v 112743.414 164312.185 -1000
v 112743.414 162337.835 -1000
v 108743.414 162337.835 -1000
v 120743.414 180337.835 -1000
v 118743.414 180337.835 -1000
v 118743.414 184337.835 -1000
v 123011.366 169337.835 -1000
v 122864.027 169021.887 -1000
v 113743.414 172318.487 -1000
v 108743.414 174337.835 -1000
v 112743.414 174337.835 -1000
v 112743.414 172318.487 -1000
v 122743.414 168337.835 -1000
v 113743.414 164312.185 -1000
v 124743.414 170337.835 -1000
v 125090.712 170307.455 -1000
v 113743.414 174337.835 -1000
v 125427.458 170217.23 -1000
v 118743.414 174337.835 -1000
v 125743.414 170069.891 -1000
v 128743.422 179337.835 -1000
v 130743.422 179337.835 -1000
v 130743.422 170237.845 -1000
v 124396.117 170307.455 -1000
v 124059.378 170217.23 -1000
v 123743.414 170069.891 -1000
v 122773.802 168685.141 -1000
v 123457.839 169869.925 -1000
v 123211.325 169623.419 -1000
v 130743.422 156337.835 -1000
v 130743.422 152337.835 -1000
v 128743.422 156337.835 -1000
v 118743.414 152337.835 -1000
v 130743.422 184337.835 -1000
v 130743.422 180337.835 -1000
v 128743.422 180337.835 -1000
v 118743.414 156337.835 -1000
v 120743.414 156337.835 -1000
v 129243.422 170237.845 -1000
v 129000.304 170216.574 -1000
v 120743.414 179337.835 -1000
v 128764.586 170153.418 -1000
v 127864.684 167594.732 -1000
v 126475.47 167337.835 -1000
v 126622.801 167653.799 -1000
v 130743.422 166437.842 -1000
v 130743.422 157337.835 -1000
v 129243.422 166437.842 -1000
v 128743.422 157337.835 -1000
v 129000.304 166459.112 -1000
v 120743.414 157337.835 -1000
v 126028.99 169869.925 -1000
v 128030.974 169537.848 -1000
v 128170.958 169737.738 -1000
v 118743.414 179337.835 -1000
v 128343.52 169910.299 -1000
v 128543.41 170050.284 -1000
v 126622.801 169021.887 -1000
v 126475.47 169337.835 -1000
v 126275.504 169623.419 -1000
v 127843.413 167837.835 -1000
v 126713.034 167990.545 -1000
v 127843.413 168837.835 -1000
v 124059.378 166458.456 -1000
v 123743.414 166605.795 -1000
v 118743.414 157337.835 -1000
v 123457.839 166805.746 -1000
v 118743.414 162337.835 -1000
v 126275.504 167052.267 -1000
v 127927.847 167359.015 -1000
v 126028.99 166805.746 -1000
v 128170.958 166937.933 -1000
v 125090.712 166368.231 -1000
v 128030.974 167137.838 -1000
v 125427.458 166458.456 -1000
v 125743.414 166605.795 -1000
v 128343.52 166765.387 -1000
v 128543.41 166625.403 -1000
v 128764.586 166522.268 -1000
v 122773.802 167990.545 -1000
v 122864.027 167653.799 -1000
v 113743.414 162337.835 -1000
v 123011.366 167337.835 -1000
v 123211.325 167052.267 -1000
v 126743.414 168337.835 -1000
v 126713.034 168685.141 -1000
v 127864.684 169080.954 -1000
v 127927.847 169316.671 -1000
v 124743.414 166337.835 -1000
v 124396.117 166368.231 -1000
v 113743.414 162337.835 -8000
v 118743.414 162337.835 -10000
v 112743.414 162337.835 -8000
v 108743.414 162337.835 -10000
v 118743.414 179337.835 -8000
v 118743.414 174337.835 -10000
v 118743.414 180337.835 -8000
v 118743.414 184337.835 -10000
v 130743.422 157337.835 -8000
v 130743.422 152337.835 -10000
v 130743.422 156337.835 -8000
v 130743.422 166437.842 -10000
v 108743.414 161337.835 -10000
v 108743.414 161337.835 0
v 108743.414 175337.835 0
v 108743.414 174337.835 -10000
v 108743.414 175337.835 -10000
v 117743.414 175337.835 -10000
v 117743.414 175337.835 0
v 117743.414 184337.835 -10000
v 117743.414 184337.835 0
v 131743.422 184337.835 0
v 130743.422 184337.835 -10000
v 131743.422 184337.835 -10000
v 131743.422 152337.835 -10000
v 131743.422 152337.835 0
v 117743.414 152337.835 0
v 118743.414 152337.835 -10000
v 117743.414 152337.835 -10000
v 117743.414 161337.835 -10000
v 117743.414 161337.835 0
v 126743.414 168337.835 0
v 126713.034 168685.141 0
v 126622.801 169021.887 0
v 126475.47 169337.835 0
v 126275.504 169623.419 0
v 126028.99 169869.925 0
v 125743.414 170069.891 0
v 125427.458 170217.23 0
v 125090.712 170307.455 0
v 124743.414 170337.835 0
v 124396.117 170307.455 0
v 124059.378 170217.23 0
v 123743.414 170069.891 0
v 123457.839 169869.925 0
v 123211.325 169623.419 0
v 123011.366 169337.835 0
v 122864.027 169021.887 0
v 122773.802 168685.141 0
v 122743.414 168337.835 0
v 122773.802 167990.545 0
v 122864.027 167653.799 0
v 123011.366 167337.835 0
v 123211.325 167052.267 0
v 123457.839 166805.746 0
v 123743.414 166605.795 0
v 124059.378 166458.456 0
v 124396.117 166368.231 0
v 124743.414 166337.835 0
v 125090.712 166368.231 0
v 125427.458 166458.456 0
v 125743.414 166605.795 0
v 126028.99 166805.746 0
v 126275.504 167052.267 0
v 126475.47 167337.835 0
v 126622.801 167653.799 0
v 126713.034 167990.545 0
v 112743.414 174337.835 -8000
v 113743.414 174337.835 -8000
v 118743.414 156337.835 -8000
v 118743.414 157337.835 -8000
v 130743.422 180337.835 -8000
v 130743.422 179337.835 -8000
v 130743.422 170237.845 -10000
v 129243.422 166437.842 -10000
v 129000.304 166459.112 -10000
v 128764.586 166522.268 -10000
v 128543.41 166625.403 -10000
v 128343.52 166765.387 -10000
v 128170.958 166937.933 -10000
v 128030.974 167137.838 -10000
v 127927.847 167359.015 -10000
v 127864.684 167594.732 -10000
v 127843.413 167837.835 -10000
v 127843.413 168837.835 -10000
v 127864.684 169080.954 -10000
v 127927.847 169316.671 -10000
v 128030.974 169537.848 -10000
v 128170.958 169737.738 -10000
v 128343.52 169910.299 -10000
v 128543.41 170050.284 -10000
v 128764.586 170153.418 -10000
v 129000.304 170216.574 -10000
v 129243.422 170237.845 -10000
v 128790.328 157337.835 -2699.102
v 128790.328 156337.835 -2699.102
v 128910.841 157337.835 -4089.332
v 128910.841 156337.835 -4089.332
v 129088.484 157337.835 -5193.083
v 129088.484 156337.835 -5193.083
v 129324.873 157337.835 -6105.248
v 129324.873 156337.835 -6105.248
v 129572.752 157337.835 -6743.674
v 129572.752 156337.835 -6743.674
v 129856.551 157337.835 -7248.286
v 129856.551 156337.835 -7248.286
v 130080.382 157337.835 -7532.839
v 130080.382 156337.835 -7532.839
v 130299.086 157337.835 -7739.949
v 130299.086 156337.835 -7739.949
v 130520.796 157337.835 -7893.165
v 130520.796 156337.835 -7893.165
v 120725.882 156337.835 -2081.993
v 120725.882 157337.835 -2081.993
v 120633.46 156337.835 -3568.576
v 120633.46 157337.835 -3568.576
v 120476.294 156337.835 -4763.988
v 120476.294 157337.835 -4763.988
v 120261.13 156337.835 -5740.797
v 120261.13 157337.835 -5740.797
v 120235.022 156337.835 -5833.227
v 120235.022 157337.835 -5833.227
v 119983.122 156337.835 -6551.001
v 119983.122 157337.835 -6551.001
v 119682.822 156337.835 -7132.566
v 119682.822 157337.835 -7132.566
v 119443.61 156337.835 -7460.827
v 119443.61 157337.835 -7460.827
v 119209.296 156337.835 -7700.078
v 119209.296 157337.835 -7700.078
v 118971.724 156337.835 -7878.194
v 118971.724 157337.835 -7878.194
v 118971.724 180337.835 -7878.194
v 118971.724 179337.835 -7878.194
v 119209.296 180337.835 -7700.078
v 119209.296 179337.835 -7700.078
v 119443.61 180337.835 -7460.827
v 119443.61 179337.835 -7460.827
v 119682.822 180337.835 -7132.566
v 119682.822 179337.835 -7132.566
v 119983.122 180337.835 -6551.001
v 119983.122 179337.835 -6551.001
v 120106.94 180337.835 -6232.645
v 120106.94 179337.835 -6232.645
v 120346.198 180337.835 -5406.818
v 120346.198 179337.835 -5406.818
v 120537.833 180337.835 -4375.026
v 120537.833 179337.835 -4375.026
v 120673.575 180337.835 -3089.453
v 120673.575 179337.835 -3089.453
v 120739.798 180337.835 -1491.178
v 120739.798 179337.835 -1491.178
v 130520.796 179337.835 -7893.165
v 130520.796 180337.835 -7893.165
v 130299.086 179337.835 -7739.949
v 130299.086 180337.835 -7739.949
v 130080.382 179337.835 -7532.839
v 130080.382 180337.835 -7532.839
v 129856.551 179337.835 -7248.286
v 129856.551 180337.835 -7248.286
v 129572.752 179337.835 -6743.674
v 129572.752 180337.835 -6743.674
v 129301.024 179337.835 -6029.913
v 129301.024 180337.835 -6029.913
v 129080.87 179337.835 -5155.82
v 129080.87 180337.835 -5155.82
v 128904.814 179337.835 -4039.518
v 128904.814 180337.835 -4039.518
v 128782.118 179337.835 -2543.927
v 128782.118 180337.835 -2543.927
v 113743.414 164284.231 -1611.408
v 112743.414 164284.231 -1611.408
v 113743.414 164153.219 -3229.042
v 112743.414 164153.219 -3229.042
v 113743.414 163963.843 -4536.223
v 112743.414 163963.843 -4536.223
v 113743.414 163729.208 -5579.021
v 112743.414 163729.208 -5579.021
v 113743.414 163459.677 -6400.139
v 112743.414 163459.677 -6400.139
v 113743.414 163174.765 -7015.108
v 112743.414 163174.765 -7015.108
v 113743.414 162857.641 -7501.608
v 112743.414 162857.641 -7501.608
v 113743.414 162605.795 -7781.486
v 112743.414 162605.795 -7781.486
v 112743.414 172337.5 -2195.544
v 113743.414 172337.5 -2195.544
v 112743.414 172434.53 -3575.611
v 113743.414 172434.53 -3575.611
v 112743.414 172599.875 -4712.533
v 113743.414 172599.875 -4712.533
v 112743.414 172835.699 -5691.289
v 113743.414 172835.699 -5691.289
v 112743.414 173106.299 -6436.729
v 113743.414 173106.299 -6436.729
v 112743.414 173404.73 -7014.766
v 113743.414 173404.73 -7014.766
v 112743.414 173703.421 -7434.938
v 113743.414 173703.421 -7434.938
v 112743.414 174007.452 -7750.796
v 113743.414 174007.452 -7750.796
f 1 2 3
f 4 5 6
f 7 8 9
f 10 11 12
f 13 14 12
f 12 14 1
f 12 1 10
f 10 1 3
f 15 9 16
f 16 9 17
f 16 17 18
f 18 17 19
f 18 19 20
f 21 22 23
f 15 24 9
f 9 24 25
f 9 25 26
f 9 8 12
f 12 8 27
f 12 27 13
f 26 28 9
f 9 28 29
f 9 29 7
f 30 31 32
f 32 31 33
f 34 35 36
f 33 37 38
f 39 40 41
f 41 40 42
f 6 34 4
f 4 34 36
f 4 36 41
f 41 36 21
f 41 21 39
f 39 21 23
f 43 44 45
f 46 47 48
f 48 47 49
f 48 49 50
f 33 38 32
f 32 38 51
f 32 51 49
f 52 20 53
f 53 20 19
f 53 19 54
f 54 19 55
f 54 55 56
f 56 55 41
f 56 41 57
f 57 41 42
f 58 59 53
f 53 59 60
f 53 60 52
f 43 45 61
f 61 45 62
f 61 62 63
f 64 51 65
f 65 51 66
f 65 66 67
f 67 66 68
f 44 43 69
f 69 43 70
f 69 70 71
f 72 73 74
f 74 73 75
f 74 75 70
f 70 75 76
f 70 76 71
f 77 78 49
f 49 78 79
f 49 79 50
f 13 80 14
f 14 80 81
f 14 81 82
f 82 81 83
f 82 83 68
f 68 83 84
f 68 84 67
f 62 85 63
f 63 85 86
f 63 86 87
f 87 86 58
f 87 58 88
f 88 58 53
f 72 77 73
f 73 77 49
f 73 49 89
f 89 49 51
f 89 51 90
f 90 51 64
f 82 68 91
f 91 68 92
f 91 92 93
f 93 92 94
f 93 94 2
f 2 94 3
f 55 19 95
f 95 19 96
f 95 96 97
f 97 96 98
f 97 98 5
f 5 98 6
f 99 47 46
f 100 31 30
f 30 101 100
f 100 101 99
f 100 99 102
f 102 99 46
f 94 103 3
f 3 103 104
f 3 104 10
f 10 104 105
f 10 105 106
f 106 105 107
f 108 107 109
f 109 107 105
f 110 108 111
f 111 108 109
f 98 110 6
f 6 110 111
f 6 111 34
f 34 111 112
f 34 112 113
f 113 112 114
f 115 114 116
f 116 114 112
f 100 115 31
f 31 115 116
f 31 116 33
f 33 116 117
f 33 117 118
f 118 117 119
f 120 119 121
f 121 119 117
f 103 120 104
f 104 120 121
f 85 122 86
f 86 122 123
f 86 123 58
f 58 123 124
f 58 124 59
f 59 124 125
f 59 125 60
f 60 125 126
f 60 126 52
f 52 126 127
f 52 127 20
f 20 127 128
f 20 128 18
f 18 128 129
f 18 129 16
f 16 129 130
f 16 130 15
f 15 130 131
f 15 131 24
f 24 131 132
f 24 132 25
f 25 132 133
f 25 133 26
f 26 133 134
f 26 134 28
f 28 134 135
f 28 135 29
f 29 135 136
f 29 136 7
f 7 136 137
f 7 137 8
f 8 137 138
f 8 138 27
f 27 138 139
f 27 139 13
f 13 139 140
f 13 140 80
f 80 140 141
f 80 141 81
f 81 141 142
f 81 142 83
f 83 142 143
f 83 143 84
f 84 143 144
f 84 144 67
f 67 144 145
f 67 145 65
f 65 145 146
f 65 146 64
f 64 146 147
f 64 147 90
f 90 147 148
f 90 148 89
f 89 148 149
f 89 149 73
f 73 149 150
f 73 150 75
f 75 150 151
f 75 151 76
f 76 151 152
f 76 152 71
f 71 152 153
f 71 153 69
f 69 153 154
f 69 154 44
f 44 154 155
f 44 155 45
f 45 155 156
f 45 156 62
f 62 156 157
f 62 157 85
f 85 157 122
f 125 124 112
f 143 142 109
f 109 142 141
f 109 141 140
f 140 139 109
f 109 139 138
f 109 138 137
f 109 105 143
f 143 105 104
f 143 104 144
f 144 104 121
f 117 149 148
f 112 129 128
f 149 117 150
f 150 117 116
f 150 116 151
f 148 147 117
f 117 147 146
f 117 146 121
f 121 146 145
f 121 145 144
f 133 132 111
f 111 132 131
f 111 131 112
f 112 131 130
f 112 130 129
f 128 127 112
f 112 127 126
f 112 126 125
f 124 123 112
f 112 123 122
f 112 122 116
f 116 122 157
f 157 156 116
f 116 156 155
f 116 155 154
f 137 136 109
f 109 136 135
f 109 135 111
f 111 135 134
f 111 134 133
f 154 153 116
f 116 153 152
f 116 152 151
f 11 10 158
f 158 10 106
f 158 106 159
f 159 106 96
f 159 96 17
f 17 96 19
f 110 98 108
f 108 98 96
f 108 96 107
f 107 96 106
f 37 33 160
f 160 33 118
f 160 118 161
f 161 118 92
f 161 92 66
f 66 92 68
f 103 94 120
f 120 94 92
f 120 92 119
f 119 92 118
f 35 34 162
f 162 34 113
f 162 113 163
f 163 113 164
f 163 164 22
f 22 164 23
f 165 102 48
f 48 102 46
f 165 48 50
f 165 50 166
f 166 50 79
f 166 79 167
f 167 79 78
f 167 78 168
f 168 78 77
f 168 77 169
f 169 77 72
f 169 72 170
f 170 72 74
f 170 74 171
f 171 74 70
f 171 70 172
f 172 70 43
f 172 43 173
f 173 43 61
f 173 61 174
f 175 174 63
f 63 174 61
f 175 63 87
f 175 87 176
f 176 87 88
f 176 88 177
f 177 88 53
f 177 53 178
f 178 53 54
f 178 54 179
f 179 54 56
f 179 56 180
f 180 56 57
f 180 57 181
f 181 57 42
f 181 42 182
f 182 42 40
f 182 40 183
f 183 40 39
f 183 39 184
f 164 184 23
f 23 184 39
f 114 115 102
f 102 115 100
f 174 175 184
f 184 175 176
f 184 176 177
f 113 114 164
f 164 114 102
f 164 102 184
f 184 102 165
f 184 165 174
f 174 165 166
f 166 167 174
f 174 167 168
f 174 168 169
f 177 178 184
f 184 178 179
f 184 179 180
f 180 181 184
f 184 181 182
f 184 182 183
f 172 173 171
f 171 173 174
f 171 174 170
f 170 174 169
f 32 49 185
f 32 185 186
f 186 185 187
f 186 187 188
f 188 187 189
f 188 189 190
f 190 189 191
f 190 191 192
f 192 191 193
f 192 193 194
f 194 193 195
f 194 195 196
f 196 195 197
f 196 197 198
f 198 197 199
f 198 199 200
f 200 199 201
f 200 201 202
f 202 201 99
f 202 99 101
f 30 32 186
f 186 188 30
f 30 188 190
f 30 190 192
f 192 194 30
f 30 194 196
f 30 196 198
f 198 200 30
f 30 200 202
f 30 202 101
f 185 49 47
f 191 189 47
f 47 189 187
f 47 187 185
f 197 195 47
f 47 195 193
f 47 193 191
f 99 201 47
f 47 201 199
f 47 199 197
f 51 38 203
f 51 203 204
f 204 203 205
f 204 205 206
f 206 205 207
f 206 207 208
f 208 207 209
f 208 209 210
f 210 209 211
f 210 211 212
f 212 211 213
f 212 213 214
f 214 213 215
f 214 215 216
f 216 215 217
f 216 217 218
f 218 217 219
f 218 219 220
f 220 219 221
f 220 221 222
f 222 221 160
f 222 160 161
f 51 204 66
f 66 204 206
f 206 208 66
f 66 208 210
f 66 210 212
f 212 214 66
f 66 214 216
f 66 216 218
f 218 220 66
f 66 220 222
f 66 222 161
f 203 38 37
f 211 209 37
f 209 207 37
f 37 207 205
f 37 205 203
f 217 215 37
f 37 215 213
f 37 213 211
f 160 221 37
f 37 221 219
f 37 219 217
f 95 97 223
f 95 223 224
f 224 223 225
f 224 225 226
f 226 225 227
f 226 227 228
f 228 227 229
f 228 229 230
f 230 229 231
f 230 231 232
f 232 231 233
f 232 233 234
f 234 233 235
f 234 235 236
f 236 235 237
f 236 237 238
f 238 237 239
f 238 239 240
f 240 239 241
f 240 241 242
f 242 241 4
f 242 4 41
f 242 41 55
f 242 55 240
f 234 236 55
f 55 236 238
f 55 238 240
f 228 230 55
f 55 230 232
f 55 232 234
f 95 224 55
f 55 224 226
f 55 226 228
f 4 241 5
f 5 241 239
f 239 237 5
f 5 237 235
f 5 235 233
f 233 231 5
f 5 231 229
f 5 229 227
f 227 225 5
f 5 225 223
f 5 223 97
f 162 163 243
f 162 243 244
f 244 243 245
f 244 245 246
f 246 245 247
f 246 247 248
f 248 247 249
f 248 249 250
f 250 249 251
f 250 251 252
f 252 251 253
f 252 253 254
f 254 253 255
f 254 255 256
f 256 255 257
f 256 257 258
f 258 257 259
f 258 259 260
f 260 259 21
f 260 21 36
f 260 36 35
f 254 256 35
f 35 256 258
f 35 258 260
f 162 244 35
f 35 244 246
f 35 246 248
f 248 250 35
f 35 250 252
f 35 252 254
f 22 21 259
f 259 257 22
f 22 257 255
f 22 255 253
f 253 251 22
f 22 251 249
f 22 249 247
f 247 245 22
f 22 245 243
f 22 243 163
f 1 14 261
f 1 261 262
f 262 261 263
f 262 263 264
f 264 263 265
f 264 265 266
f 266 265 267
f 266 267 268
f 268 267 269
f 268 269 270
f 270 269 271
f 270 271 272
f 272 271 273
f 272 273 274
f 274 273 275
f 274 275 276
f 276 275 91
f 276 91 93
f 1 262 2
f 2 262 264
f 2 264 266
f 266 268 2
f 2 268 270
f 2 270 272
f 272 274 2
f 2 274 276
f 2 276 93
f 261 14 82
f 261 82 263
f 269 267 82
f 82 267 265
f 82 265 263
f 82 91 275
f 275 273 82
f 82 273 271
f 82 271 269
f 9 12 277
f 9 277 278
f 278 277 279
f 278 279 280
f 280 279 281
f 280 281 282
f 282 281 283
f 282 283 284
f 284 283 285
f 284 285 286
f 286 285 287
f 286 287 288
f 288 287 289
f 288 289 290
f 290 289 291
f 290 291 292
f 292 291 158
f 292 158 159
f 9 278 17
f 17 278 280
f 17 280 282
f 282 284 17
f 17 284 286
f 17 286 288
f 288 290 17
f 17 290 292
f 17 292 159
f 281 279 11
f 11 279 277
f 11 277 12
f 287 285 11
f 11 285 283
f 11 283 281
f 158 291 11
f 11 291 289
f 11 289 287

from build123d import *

# Parameters (mm, degrees)
CROQUIS1_R                   = 2000
SALIENTE_EXTRUIR1_DEPTH      = 1000
SALIENTE_EXTRUIR2_DEPTH      = 10000
SALIENTE_EXTRUIR3_DEPTH      = 500
SALIENTE_EXTRUIR3_DEPTH_BACK = 500
SALIENTE_EXTRUIR4_DEPTH      = 500
SALIENTE_EXTRUIR4_DEPTH_BACK = 500
SALIENTE_EXTRUIR5_DEPTH      = 500
SALIENTE_EXTRUIR5_DEPTH_BACK = 500


with BuildPart() as part:
    # Croquis1 → Saliente-Extruir1 (new body)
    with BuildSketch(Plane.XY):
        Polygon((117743.416897498, 161337.836627923), (117743.416897498, 152337.836627923), (131743.416897498, 152337.836627923), (131743.416897498, 184337.836627923), (117743.416897498, 184337.836627923), (117743.416897498, 175337.836627923), (108743.416897498, 175337.836627923), (108743.416897498, 161337.836627923), align=None)
        with Locations((124743.416897498, 168337.836627923)):
            Circle(CROQUIS1_R, mode=Mode.SUBTRACT)
    extrude(amount=-SALIENTE_EXTRUIR1_DEPTH)

    # Croquis1<6> → Saliente-Extruir2 (add)
    with BuildSketch(Plane.XY):
        Polygon((117743.416897498, 161337.836627923), (117743.416897498, 152337.836627923), (118743.416897498, 152337.836627923), (118743.416897498, 162337.836627923), (108743.416897498, 162337.836627923), (108743.416897498, 161337.836627923), align=None)
        with BuildLine():
            Line((130743.416897498, 152337.836627923), (131743.416897498, 152337.836627923))
            Line((131743.416897498, 152337.836627923), (131743.416897498, 184337.836627923))
            Line((131743.416897498, 184337.836627923), (130743.416897498, 184337.836627923))
            Line((130743.416897498, 184337.836627923), (130743.416897498, 170237.836627923))
            Line((130743.416897498, 170237.836627923), (129243.416897498, 170237.836627923))
            ThreePointArc((129243.416897498, 170237.836627923), (128253.467403837, 169827.786121585), (127843.416897498, 168837.836627923))
            Line((127843.416897498, 168837.836627923), (127843.416897498, 167837.836627923))
            ThreePointArc((127843.416897498, 167837.836627923), (128253.467403837, 166847.887134262), (129243.416897498, 166437.836627923))
            Line((129243.416897498, 166437.836627923), (130743.416897498, 166437.836627923))
            Line((130743.416897498, 166437.836627923), (130743.416897498, 152337.836627923))
        make_face()
        Polygon((108743.416897498, 174337.836627923), (118743.416897498, 174337.836627923), (118743.416897498, 184337.836627923), (117743.416897498, 184337.836627923), (117743.416897498, 175337.836627923), (108743.416897498, 175337.836627923), align=None)
    extrude(amount=-SALIENTE_EXTRUIR2_DEPTH)

    # Croquis2 → Saliente-Extruir3 (add, two sides: drawn at the far end of the back side and taken through both)
    with BuildSketch(Plane(origin=(0, 156837.836627923, 0), x_dir=(1, 0, 0), z_dir=(0, 1, 0)).offset(-SALIENTE_EXTRUIR3_DEPTH_BACK)):
        with BuildLine():
            add(Edge.make_bspline(
                [(118743.416897498, 8000), (120739.811138244, 7120.578794783), (120743.416897498, 1000)],
                knots=[0, 0, 0, 0.514460755, 0.514460755, 0.514460755], degree=2))
            Line((118743.416897498, 8000), (118743.416897498, 1000))
            Line((118743.416897498, 1000), (120743.416897498, 1000))
        make_face()
        with BuildLine():
            Line((130743.416897498, 1000), (130743.416897498, 8000))
            add(Edge.make_bspline(
                [(130743.416897498, 8000), (128761.675222051, 7234.348262256), (128743.416897498, 1000)],
                knots=[0, 0, 0, 0.590989184, 0.590989184, 0.590989184], degree=2))
            Line((128743.416897498, 1000), (130743.416897498, 1000))
        make_face()
    extrude(amount=SALIENTE_EXTRUIR3_DEPTH + SALIENTE_EXTRUIR3_DEPTH_BACK)

    # Croquis3 → Saliente-Extruir4 (add, two sides: drawn at the far end of the back side and taken through both)
    with BuildSketch(Plane(origin=(0, 179837.836627923, 0), x_dir=(1, 0, 0), z_dir=(0, 1, 0)).offset(-SALIENTE_EXTRUIR4_DEPTH_BACK)):
        with BuildLine():
            add(Edge.make_bspline(
                [(130743.416897498, 8000), (128761.675222051, 7234.348262256), (128743.416897498, 1000)],
                knots=[0, 0, 0, 1, 1, 1], degree=2))
            Line((128743.416897498, 1000), (130743.416897498, 1000))
            Line((130743.416897498, 1000), (130743.416897498, 8000))
        make_face()
        with BuildLine():
            Line((118743.416897498, 8000), (118743.416897498, 1000))
            Line((118743.416897498, 1000), (120743.416897498, 1000))
            add(Edge.make_bspline(
                [(118743.416897498, 8000), (120739.811138244, 7120.578794783), (120743.416897498, 1000)],
                knots=[0, 0, 0, 1, 1, 1], degree=2))
        make_face()
    extrude(amount=SALIENTE_EXTRUIR4_DEPTH + SALIENTE_EXTRUIR4_DEPTH_BACK)

    # Croquis4 → Saliente-Extruir5 (add, two sides: drawn at the far end of the back side and taken through both)
    with BuildSketch(Plane(origin=(113243.416897498, 0, 0), x_dir=(0, 0, -1), z_dir=(1, 0, 0)).offset(-SALIENTE_EXTRUIR5_DEPTH_BACK)):
        with BuildLine():
            Line((8000, 174337.836627923), (0, 174337.836627923))
            Line((0, 174337.836627923), (0, 172337.836627923))
            add(Edge.make_bspline(
                [(8000, 174337.836627923), (6599.854554041, 172118.74354217), (0, 172337.836627923)],
                knots=[0, 0, 0, 0.64837766, 0.64837766, 0.64837766], degree=2))
        make_face()
        with BuildLine():
            add(Edge.make_bspline(
                [(8000, 162337.836627923), (6698.658965378, 164240.824079883), (0, 164337.836627923)],
                knots=[0, 0, 0, 0.707529781, 0.707529781, 0.707529781], degree=2))
            Line((0, 164337.836627923), (0, 162337.836627923))
            Line((0, 162337.836627923), (8000, 162337.836627923))
        make_face()
    extrude(amount=SALIENTE_EXTRUIR5_DEPTH + SALIENTE_EXTRUIR5_DEPTH_BACK)


solid = part.part
